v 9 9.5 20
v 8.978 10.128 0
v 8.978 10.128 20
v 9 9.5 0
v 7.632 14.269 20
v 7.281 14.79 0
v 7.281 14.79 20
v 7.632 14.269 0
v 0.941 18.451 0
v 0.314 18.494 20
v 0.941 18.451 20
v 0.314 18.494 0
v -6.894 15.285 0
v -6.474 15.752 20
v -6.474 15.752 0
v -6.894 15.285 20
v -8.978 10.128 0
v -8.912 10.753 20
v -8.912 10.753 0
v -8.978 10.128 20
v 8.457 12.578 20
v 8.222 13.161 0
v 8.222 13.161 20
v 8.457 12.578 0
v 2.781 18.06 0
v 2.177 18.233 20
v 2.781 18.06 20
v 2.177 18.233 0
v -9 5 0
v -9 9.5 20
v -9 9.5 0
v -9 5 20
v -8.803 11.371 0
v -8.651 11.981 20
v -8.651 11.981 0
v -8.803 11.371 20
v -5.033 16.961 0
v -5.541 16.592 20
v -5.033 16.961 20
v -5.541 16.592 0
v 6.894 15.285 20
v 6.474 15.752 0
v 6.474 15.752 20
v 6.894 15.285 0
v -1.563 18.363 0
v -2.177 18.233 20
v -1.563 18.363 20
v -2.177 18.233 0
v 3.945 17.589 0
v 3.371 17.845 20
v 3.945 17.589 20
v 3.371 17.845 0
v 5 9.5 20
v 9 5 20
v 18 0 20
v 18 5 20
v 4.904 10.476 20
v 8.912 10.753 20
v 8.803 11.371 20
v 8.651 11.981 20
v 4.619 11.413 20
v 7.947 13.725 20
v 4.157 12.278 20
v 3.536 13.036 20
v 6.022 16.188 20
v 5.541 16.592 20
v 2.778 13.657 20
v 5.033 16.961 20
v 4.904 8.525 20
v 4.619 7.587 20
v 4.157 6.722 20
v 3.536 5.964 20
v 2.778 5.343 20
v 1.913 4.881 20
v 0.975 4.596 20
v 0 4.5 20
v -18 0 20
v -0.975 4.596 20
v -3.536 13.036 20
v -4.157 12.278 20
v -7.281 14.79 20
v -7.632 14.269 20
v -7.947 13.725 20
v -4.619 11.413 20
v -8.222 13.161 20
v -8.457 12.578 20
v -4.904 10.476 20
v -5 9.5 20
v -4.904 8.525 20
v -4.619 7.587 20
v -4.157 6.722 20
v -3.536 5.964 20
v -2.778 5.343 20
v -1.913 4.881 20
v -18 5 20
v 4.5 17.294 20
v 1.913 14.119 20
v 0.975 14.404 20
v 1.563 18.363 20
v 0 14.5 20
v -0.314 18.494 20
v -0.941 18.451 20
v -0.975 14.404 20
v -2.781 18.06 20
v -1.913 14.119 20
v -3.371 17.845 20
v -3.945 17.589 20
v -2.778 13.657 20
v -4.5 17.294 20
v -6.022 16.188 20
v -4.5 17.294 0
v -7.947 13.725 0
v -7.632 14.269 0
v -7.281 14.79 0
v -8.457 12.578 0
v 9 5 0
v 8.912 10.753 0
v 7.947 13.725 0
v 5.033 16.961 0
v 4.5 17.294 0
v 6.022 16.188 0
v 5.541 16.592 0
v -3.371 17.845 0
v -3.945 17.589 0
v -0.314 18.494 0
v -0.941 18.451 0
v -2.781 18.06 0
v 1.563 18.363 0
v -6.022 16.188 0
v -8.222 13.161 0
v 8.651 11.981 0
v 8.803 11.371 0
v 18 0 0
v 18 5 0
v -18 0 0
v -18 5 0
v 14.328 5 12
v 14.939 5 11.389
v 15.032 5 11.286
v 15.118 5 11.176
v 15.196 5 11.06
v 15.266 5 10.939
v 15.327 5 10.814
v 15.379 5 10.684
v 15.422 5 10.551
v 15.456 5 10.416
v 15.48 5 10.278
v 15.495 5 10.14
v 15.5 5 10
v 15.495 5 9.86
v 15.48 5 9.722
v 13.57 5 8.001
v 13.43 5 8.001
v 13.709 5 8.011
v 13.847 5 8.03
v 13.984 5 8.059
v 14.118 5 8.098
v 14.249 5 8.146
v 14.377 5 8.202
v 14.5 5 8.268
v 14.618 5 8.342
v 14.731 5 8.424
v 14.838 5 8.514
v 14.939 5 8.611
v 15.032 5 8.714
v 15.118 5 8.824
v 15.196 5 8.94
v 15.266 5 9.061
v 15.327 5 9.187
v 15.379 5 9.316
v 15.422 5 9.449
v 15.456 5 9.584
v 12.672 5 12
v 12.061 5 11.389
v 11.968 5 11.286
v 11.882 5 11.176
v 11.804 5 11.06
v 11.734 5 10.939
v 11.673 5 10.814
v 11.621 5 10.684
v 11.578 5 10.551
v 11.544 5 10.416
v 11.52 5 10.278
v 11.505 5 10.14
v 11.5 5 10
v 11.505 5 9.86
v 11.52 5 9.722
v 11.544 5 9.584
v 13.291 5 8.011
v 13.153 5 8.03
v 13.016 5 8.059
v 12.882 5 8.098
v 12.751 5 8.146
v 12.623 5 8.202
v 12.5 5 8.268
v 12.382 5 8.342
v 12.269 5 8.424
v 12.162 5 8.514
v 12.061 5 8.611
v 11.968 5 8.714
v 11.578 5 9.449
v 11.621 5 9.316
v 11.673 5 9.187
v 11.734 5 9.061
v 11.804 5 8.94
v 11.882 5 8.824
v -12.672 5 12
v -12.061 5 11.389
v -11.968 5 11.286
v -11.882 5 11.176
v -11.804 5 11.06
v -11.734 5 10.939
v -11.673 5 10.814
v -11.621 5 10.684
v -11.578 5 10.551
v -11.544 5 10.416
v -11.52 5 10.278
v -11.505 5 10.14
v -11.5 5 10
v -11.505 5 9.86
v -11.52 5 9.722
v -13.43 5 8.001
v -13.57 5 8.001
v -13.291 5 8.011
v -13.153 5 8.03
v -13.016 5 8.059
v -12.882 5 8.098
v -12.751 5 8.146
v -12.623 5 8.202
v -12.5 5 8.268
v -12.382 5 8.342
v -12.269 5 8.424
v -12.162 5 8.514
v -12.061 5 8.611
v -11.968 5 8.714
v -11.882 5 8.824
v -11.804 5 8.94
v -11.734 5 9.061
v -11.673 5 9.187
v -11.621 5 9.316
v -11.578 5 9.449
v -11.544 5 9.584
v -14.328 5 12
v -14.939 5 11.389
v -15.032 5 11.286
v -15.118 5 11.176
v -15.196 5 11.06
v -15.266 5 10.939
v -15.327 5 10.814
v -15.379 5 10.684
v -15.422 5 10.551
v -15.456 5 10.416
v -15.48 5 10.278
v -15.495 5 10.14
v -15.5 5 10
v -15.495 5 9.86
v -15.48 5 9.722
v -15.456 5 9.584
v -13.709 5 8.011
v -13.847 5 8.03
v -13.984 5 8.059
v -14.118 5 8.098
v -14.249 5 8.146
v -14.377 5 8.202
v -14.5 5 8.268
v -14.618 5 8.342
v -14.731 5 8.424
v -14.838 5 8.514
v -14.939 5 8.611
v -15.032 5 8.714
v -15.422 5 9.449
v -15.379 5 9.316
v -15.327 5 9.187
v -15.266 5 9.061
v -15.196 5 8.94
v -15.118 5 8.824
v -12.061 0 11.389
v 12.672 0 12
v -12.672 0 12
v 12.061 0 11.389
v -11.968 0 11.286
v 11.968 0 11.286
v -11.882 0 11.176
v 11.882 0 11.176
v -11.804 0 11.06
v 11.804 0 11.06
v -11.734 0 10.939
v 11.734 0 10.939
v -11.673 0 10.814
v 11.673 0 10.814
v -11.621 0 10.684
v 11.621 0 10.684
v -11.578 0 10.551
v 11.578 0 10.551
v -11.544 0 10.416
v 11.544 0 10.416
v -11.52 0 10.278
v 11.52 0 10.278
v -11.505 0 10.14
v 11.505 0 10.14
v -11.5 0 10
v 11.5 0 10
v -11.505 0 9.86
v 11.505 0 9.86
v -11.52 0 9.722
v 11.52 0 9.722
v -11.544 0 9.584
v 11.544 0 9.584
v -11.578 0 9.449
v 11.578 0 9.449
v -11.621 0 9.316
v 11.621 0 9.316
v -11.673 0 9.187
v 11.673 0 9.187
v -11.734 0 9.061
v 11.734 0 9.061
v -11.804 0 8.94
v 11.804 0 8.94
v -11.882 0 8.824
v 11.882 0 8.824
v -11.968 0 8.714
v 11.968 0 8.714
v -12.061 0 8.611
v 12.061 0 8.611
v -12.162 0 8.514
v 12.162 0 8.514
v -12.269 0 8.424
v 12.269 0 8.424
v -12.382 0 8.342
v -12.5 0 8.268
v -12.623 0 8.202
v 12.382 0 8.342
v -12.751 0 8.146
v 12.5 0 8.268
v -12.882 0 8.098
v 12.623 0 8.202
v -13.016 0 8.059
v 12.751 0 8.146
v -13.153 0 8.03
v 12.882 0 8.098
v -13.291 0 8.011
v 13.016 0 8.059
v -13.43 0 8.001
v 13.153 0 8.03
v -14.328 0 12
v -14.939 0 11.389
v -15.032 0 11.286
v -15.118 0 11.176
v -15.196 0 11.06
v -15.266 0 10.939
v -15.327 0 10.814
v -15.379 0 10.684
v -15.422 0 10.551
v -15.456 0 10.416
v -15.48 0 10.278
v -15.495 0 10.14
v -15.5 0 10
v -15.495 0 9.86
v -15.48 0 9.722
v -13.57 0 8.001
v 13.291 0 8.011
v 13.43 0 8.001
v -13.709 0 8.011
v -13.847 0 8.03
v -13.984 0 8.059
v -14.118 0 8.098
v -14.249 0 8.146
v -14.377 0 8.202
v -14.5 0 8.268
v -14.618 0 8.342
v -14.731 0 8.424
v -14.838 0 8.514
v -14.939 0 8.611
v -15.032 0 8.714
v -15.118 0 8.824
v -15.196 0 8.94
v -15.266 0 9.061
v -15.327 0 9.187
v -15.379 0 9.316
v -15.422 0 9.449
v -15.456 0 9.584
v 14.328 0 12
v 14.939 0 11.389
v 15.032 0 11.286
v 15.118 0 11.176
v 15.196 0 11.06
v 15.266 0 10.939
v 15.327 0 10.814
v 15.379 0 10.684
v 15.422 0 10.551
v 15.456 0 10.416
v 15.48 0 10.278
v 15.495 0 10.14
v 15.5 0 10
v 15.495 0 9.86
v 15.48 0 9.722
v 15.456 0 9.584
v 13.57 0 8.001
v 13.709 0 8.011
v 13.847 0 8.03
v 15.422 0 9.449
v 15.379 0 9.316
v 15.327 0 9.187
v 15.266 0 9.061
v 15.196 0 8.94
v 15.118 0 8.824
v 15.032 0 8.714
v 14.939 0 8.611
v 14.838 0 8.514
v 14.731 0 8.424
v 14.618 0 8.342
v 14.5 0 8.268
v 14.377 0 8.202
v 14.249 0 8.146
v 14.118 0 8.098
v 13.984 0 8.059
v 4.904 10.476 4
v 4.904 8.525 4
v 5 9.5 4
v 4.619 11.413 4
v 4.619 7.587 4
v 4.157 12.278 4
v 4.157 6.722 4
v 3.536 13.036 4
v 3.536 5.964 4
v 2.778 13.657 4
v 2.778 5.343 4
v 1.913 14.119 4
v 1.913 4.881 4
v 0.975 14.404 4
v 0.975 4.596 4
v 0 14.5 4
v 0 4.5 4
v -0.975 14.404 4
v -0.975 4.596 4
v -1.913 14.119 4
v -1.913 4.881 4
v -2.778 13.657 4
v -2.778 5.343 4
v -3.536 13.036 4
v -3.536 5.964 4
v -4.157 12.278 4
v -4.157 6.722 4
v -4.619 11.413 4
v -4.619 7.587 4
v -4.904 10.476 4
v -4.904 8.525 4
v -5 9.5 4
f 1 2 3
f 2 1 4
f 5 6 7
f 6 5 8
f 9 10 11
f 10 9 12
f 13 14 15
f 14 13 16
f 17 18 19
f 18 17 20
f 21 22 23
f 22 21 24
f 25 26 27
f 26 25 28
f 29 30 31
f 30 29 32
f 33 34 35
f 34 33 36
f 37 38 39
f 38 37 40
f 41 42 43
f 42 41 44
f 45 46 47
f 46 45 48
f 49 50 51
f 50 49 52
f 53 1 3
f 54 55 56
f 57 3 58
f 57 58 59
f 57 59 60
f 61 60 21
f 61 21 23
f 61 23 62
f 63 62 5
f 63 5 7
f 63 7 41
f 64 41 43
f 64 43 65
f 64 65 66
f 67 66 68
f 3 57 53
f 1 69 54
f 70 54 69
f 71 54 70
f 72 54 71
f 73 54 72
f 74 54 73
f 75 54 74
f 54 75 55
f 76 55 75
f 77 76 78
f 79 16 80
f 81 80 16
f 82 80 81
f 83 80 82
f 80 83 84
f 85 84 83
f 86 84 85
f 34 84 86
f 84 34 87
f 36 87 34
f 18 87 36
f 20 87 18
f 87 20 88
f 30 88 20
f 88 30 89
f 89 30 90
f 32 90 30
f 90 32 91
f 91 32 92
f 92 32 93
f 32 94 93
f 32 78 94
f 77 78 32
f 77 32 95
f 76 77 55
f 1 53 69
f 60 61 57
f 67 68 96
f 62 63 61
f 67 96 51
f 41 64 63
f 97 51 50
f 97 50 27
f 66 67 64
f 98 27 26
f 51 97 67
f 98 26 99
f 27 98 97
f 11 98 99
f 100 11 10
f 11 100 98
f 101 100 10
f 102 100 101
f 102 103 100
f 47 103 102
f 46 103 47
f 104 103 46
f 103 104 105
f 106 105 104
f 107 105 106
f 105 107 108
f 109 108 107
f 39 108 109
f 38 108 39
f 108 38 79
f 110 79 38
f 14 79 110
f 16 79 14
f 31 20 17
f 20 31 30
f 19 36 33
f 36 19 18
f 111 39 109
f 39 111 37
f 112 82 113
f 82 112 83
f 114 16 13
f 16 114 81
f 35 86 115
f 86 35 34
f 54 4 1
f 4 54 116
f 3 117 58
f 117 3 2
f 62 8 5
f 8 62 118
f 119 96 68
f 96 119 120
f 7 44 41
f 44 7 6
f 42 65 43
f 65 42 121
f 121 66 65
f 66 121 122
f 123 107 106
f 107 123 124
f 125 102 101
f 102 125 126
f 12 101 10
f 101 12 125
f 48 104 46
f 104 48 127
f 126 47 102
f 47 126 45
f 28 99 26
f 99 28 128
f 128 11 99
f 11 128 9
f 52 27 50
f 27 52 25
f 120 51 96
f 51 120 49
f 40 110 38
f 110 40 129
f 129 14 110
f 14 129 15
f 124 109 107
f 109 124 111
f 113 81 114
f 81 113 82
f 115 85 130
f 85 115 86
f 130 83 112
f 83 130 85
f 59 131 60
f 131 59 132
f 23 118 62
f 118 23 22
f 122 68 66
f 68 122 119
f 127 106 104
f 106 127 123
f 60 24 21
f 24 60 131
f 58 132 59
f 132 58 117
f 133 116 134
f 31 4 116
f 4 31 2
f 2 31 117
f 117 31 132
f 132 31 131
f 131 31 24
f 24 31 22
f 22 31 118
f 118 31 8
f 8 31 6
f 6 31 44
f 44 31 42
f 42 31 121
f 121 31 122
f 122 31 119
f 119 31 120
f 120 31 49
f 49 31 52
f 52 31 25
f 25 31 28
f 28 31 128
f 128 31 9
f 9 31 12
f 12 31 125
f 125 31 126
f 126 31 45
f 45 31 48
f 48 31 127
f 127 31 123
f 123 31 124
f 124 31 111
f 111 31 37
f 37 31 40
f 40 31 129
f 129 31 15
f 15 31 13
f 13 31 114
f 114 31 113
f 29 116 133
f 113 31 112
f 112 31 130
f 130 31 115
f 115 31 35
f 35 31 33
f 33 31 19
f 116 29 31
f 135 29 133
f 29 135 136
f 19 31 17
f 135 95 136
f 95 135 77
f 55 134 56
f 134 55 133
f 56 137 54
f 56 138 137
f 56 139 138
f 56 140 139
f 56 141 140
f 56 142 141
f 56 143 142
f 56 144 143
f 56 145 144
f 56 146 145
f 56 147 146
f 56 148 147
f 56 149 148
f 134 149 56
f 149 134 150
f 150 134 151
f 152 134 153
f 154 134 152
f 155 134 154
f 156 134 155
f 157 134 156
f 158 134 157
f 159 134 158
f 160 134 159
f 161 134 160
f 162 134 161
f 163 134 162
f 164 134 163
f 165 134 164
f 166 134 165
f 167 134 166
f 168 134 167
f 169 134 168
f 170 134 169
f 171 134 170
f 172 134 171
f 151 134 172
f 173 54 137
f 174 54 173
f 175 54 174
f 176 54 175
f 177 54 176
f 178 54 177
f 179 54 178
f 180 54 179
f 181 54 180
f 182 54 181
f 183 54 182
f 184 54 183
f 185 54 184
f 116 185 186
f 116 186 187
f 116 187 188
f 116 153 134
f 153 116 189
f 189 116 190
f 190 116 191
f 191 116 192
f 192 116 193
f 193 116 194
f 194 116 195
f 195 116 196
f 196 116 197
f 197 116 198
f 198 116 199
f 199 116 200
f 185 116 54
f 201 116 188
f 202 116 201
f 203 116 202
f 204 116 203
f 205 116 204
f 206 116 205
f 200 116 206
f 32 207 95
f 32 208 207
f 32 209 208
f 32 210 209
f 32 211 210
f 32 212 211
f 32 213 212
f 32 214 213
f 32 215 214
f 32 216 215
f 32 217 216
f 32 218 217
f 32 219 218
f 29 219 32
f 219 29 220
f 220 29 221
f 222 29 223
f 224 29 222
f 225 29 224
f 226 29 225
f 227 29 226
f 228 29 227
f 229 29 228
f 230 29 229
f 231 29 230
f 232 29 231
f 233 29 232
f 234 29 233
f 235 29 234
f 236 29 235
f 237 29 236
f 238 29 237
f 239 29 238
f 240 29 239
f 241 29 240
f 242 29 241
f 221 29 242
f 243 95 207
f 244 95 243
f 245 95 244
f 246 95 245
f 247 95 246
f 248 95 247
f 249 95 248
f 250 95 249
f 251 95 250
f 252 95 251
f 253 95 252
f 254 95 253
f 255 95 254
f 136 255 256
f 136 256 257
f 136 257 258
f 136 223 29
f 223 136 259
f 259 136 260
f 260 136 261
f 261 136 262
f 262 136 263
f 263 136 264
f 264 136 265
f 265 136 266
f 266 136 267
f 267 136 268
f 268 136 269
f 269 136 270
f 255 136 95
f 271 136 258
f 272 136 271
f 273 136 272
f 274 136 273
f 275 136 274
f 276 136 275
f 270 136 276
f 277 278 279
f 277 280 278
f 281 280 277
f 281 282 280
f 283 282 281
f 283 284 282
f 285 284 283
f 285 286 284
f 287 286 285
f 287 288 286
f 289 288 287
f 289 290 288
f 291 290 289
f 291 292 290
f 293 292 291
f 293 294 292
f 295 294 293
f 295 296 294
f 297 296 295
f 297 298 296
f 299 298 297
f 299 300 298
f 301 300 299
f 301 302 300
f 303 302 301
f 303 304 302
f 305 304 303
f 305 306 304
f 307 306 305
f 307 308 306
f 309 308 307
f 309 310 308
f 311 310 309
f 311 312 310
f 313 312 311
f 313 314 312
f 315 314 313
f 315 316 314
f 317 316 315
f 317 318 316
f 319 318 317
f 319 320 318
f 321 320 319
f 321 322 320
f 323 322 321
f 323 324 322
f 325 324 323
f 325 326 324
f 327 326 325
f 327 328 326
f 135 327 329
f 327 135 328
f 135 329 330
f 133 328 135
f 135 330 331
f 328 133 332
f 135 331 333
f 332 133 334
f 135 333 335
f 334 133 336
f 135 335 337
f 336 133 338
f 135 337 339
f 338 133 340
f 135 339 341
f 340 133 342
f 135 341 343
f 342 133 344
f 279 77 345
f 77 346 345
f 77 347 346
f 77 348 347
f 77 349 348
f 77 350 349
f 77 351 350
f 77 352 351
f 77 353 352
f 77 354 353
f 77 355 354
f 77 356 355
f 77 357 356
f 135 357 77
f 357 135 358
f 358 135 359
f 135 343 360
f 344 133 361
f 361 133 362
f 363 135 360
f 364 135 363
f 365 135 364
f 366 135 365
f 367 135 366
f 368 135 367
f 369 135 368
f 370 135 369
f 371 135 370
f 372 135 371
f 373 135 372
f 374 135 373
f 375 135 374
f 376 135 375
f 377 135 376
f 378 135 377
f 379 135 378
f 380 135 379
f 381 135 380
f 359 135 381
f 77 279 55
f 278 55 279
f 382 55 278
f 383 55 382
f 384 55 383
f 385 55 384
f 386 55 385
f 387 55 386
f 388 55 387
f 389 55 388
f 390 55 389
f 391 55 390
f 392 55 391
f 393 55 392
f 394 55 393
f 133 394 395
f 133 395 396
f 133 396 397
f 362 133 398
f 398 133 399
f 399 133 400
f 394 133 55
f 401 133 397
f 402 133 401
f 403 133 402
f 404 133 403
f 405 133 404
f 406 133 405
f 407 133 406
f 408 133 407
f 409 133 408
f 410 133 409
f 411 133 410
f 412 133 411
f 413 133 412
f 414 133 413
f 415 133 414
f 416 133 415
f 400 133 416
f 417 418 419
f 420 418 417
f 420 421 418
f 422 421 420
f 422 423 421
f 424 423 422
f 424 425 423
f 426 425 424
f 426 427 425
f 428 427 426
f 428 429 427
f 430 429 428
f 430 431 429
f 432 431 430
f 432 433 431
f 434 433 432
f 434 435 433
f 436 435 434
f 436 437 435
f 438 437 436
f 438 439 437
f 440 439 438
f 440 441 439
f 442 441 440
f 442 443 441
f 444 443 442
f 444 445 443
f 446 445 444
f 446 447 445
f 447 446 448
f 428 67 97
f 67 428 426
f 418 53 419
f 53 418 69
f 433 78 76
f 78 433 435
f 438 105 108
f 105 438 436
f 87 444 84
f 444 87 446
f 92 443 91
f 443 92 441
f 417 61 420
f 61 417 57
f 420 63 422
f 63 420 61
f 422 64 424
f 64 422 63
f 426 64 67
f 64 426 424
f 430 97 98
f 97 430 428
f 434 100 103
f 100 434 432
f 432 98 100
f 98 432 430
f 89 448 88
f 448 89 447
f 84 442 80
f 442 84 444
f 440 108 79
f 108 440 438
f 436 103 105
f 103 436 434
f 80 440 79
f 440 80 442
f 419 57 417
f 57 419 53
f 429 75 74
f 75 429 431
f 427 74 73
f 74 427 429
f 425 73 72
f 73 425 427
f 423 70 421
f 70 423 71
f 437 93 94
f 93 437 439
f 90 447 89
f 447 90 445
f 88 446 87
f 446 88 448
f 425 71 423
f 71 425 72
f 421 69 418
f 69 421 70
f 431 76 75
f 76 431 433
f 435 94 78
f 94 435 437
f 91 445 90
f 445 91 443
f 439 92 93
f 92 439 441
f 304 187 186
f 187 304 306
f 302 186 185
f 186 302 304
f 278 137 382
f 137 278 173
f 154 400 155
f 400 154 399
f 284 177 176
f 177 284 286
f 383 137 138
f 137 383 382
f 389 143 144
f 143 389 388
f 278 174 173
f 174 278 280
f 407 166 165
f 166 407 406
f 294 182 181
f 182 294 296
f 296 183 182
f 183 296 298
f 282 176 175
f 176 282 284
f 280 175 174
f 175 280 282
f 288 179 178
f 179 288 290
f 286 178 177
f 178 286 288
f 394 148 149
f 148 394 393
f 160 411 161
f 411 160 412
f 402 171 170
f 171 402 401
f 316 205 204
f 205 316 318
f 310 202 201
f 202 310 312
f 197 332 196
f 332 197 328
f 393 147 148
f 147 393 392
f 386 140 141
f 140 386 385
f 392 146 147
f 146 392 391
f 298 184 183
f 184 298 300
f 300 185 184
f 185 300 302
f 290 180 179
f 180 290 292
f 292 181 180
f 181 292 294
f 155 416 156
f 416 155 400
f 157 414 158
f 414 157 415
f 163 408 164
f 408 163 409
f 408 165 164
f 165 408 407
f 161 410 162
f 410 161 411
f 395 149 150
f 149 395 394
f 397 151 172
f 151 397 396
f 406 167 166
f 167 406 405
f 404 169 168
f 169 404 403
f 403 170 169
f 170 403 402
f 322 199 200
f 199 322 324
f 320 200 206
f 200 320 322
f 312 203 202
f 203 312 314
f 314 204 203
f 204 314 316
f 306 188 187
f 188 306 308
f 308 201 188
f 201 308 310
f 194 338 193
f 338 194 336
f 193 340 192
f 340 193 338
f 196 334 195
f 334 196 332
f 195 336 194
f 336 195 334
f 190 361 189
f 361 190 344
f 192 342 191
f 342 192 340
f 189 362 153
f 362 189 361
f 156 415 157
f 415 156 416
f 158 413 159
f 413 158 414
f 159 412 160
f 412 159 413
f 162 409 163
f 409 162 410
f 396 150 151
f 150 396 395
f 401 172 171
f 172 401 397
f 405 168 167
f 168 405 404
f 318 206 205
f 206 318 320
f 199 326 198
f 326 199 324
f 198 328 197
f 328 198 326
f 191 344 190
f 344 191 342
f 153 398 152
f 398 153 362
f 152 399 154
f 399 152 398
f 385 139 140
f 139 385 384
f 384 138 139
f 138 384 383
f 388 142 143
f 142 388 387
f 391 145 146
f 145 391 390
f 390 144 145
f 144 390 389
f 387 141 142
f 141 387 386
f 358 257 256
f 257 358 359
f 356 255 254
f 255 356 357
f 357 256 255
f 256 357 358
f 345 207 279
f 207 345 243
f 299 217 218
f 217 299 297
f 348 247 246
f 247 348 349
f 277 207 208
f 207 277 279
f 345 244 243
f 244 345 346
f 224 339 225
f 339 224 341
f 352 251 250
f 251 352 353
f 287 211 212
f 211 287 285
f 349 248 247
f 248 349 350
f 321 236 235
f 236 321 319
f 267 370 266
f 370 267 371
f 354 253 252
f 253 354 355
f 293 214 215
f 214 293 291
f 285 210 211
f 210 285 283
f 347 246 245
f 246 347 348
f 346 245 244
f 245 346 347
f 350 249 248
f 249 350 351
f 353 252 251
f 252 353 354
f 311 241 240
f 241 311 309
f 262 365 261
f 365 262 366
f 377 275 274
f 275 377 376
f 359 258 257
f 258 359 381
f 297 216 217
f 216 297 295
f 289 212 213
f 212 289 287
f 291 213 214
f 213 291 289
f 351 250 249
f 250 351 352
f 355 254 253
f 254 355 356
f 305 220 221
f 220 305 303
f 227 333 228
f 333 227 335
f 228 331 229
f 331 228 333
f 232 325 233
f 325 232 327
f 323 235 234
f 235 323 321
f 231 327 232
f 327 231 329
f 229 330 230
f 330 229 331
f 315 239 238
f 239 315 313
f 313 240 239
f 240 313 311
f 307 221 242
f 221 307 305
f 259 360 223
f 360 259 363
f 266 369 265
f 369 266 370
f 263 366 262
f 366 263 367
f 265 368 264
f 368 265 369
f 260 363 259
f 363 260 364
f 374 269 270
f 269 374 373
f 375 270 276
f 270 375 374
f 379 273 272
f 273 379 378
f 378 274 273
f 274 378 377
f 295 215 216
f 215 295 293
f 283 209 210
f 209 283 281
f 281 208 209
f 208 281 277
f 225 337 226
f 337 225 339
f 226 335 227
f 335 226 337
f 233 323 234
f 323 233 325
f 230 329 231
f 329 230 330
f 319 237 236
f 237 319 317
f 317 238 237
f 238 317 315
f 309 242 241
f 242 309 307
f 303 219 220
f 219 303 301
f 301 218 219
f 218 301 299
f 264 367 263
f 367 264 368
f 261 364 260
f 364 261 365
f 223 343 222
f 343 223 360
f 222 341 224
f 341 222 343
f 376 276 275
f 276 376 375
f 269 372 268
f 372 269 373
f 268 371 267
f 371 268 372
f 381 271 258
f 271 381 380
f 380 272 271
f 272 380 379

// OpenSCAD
// file: ../trunctear.scad
//A module for truncated tear drops.

trunctear(1, 0.5, $fn = 90);

module trunctear(hei, radian, cent = false)
{
    linear_extrude(height = hei, center = cent)
        hull()
        {
            circle(r = radian);
            translate([0, radian/2])
                square([2*(radian*(2*cos(45)-1)), radian], center = true);
        }
}
// main file
// Mount for z rods

use<../trunctear.scad>

ZBarMount();

module ZBarMount()
{
    difference()
    {
        union()
        {
            hull()
            {
                translate([0, 15/2+2, 0])
                    cylinder(h = 20, r = 5+4, $fn = 90);
                translate([5+4-2, 2, 0])
                    cylinder(h = 20, r = 2, $fn = 90);
                translate([-5-4+2, 2, 0])
                    cylinder(h = 20, r = 2, $fn = 90);
            }
            translate([0, 5/2, 10])
                cube([2*(18), 5, 20], center = true);
        }
        translate([0, 15/2+2, 4])
            cylinder(h = 20, r = 5, $fn = 32);
        translate([(5+4+(18-5-4)/2), 5/2, 10])
            rotate([90, 0, 0])
                trunctear(5, 2, true, $fn = 90);
        translate([-(5+4+(18-5-4)/2), 5/2, 10])
            rotate([90, 0, 0])
                trunctear(5, 2, true, $fn = 90);
    }
}
